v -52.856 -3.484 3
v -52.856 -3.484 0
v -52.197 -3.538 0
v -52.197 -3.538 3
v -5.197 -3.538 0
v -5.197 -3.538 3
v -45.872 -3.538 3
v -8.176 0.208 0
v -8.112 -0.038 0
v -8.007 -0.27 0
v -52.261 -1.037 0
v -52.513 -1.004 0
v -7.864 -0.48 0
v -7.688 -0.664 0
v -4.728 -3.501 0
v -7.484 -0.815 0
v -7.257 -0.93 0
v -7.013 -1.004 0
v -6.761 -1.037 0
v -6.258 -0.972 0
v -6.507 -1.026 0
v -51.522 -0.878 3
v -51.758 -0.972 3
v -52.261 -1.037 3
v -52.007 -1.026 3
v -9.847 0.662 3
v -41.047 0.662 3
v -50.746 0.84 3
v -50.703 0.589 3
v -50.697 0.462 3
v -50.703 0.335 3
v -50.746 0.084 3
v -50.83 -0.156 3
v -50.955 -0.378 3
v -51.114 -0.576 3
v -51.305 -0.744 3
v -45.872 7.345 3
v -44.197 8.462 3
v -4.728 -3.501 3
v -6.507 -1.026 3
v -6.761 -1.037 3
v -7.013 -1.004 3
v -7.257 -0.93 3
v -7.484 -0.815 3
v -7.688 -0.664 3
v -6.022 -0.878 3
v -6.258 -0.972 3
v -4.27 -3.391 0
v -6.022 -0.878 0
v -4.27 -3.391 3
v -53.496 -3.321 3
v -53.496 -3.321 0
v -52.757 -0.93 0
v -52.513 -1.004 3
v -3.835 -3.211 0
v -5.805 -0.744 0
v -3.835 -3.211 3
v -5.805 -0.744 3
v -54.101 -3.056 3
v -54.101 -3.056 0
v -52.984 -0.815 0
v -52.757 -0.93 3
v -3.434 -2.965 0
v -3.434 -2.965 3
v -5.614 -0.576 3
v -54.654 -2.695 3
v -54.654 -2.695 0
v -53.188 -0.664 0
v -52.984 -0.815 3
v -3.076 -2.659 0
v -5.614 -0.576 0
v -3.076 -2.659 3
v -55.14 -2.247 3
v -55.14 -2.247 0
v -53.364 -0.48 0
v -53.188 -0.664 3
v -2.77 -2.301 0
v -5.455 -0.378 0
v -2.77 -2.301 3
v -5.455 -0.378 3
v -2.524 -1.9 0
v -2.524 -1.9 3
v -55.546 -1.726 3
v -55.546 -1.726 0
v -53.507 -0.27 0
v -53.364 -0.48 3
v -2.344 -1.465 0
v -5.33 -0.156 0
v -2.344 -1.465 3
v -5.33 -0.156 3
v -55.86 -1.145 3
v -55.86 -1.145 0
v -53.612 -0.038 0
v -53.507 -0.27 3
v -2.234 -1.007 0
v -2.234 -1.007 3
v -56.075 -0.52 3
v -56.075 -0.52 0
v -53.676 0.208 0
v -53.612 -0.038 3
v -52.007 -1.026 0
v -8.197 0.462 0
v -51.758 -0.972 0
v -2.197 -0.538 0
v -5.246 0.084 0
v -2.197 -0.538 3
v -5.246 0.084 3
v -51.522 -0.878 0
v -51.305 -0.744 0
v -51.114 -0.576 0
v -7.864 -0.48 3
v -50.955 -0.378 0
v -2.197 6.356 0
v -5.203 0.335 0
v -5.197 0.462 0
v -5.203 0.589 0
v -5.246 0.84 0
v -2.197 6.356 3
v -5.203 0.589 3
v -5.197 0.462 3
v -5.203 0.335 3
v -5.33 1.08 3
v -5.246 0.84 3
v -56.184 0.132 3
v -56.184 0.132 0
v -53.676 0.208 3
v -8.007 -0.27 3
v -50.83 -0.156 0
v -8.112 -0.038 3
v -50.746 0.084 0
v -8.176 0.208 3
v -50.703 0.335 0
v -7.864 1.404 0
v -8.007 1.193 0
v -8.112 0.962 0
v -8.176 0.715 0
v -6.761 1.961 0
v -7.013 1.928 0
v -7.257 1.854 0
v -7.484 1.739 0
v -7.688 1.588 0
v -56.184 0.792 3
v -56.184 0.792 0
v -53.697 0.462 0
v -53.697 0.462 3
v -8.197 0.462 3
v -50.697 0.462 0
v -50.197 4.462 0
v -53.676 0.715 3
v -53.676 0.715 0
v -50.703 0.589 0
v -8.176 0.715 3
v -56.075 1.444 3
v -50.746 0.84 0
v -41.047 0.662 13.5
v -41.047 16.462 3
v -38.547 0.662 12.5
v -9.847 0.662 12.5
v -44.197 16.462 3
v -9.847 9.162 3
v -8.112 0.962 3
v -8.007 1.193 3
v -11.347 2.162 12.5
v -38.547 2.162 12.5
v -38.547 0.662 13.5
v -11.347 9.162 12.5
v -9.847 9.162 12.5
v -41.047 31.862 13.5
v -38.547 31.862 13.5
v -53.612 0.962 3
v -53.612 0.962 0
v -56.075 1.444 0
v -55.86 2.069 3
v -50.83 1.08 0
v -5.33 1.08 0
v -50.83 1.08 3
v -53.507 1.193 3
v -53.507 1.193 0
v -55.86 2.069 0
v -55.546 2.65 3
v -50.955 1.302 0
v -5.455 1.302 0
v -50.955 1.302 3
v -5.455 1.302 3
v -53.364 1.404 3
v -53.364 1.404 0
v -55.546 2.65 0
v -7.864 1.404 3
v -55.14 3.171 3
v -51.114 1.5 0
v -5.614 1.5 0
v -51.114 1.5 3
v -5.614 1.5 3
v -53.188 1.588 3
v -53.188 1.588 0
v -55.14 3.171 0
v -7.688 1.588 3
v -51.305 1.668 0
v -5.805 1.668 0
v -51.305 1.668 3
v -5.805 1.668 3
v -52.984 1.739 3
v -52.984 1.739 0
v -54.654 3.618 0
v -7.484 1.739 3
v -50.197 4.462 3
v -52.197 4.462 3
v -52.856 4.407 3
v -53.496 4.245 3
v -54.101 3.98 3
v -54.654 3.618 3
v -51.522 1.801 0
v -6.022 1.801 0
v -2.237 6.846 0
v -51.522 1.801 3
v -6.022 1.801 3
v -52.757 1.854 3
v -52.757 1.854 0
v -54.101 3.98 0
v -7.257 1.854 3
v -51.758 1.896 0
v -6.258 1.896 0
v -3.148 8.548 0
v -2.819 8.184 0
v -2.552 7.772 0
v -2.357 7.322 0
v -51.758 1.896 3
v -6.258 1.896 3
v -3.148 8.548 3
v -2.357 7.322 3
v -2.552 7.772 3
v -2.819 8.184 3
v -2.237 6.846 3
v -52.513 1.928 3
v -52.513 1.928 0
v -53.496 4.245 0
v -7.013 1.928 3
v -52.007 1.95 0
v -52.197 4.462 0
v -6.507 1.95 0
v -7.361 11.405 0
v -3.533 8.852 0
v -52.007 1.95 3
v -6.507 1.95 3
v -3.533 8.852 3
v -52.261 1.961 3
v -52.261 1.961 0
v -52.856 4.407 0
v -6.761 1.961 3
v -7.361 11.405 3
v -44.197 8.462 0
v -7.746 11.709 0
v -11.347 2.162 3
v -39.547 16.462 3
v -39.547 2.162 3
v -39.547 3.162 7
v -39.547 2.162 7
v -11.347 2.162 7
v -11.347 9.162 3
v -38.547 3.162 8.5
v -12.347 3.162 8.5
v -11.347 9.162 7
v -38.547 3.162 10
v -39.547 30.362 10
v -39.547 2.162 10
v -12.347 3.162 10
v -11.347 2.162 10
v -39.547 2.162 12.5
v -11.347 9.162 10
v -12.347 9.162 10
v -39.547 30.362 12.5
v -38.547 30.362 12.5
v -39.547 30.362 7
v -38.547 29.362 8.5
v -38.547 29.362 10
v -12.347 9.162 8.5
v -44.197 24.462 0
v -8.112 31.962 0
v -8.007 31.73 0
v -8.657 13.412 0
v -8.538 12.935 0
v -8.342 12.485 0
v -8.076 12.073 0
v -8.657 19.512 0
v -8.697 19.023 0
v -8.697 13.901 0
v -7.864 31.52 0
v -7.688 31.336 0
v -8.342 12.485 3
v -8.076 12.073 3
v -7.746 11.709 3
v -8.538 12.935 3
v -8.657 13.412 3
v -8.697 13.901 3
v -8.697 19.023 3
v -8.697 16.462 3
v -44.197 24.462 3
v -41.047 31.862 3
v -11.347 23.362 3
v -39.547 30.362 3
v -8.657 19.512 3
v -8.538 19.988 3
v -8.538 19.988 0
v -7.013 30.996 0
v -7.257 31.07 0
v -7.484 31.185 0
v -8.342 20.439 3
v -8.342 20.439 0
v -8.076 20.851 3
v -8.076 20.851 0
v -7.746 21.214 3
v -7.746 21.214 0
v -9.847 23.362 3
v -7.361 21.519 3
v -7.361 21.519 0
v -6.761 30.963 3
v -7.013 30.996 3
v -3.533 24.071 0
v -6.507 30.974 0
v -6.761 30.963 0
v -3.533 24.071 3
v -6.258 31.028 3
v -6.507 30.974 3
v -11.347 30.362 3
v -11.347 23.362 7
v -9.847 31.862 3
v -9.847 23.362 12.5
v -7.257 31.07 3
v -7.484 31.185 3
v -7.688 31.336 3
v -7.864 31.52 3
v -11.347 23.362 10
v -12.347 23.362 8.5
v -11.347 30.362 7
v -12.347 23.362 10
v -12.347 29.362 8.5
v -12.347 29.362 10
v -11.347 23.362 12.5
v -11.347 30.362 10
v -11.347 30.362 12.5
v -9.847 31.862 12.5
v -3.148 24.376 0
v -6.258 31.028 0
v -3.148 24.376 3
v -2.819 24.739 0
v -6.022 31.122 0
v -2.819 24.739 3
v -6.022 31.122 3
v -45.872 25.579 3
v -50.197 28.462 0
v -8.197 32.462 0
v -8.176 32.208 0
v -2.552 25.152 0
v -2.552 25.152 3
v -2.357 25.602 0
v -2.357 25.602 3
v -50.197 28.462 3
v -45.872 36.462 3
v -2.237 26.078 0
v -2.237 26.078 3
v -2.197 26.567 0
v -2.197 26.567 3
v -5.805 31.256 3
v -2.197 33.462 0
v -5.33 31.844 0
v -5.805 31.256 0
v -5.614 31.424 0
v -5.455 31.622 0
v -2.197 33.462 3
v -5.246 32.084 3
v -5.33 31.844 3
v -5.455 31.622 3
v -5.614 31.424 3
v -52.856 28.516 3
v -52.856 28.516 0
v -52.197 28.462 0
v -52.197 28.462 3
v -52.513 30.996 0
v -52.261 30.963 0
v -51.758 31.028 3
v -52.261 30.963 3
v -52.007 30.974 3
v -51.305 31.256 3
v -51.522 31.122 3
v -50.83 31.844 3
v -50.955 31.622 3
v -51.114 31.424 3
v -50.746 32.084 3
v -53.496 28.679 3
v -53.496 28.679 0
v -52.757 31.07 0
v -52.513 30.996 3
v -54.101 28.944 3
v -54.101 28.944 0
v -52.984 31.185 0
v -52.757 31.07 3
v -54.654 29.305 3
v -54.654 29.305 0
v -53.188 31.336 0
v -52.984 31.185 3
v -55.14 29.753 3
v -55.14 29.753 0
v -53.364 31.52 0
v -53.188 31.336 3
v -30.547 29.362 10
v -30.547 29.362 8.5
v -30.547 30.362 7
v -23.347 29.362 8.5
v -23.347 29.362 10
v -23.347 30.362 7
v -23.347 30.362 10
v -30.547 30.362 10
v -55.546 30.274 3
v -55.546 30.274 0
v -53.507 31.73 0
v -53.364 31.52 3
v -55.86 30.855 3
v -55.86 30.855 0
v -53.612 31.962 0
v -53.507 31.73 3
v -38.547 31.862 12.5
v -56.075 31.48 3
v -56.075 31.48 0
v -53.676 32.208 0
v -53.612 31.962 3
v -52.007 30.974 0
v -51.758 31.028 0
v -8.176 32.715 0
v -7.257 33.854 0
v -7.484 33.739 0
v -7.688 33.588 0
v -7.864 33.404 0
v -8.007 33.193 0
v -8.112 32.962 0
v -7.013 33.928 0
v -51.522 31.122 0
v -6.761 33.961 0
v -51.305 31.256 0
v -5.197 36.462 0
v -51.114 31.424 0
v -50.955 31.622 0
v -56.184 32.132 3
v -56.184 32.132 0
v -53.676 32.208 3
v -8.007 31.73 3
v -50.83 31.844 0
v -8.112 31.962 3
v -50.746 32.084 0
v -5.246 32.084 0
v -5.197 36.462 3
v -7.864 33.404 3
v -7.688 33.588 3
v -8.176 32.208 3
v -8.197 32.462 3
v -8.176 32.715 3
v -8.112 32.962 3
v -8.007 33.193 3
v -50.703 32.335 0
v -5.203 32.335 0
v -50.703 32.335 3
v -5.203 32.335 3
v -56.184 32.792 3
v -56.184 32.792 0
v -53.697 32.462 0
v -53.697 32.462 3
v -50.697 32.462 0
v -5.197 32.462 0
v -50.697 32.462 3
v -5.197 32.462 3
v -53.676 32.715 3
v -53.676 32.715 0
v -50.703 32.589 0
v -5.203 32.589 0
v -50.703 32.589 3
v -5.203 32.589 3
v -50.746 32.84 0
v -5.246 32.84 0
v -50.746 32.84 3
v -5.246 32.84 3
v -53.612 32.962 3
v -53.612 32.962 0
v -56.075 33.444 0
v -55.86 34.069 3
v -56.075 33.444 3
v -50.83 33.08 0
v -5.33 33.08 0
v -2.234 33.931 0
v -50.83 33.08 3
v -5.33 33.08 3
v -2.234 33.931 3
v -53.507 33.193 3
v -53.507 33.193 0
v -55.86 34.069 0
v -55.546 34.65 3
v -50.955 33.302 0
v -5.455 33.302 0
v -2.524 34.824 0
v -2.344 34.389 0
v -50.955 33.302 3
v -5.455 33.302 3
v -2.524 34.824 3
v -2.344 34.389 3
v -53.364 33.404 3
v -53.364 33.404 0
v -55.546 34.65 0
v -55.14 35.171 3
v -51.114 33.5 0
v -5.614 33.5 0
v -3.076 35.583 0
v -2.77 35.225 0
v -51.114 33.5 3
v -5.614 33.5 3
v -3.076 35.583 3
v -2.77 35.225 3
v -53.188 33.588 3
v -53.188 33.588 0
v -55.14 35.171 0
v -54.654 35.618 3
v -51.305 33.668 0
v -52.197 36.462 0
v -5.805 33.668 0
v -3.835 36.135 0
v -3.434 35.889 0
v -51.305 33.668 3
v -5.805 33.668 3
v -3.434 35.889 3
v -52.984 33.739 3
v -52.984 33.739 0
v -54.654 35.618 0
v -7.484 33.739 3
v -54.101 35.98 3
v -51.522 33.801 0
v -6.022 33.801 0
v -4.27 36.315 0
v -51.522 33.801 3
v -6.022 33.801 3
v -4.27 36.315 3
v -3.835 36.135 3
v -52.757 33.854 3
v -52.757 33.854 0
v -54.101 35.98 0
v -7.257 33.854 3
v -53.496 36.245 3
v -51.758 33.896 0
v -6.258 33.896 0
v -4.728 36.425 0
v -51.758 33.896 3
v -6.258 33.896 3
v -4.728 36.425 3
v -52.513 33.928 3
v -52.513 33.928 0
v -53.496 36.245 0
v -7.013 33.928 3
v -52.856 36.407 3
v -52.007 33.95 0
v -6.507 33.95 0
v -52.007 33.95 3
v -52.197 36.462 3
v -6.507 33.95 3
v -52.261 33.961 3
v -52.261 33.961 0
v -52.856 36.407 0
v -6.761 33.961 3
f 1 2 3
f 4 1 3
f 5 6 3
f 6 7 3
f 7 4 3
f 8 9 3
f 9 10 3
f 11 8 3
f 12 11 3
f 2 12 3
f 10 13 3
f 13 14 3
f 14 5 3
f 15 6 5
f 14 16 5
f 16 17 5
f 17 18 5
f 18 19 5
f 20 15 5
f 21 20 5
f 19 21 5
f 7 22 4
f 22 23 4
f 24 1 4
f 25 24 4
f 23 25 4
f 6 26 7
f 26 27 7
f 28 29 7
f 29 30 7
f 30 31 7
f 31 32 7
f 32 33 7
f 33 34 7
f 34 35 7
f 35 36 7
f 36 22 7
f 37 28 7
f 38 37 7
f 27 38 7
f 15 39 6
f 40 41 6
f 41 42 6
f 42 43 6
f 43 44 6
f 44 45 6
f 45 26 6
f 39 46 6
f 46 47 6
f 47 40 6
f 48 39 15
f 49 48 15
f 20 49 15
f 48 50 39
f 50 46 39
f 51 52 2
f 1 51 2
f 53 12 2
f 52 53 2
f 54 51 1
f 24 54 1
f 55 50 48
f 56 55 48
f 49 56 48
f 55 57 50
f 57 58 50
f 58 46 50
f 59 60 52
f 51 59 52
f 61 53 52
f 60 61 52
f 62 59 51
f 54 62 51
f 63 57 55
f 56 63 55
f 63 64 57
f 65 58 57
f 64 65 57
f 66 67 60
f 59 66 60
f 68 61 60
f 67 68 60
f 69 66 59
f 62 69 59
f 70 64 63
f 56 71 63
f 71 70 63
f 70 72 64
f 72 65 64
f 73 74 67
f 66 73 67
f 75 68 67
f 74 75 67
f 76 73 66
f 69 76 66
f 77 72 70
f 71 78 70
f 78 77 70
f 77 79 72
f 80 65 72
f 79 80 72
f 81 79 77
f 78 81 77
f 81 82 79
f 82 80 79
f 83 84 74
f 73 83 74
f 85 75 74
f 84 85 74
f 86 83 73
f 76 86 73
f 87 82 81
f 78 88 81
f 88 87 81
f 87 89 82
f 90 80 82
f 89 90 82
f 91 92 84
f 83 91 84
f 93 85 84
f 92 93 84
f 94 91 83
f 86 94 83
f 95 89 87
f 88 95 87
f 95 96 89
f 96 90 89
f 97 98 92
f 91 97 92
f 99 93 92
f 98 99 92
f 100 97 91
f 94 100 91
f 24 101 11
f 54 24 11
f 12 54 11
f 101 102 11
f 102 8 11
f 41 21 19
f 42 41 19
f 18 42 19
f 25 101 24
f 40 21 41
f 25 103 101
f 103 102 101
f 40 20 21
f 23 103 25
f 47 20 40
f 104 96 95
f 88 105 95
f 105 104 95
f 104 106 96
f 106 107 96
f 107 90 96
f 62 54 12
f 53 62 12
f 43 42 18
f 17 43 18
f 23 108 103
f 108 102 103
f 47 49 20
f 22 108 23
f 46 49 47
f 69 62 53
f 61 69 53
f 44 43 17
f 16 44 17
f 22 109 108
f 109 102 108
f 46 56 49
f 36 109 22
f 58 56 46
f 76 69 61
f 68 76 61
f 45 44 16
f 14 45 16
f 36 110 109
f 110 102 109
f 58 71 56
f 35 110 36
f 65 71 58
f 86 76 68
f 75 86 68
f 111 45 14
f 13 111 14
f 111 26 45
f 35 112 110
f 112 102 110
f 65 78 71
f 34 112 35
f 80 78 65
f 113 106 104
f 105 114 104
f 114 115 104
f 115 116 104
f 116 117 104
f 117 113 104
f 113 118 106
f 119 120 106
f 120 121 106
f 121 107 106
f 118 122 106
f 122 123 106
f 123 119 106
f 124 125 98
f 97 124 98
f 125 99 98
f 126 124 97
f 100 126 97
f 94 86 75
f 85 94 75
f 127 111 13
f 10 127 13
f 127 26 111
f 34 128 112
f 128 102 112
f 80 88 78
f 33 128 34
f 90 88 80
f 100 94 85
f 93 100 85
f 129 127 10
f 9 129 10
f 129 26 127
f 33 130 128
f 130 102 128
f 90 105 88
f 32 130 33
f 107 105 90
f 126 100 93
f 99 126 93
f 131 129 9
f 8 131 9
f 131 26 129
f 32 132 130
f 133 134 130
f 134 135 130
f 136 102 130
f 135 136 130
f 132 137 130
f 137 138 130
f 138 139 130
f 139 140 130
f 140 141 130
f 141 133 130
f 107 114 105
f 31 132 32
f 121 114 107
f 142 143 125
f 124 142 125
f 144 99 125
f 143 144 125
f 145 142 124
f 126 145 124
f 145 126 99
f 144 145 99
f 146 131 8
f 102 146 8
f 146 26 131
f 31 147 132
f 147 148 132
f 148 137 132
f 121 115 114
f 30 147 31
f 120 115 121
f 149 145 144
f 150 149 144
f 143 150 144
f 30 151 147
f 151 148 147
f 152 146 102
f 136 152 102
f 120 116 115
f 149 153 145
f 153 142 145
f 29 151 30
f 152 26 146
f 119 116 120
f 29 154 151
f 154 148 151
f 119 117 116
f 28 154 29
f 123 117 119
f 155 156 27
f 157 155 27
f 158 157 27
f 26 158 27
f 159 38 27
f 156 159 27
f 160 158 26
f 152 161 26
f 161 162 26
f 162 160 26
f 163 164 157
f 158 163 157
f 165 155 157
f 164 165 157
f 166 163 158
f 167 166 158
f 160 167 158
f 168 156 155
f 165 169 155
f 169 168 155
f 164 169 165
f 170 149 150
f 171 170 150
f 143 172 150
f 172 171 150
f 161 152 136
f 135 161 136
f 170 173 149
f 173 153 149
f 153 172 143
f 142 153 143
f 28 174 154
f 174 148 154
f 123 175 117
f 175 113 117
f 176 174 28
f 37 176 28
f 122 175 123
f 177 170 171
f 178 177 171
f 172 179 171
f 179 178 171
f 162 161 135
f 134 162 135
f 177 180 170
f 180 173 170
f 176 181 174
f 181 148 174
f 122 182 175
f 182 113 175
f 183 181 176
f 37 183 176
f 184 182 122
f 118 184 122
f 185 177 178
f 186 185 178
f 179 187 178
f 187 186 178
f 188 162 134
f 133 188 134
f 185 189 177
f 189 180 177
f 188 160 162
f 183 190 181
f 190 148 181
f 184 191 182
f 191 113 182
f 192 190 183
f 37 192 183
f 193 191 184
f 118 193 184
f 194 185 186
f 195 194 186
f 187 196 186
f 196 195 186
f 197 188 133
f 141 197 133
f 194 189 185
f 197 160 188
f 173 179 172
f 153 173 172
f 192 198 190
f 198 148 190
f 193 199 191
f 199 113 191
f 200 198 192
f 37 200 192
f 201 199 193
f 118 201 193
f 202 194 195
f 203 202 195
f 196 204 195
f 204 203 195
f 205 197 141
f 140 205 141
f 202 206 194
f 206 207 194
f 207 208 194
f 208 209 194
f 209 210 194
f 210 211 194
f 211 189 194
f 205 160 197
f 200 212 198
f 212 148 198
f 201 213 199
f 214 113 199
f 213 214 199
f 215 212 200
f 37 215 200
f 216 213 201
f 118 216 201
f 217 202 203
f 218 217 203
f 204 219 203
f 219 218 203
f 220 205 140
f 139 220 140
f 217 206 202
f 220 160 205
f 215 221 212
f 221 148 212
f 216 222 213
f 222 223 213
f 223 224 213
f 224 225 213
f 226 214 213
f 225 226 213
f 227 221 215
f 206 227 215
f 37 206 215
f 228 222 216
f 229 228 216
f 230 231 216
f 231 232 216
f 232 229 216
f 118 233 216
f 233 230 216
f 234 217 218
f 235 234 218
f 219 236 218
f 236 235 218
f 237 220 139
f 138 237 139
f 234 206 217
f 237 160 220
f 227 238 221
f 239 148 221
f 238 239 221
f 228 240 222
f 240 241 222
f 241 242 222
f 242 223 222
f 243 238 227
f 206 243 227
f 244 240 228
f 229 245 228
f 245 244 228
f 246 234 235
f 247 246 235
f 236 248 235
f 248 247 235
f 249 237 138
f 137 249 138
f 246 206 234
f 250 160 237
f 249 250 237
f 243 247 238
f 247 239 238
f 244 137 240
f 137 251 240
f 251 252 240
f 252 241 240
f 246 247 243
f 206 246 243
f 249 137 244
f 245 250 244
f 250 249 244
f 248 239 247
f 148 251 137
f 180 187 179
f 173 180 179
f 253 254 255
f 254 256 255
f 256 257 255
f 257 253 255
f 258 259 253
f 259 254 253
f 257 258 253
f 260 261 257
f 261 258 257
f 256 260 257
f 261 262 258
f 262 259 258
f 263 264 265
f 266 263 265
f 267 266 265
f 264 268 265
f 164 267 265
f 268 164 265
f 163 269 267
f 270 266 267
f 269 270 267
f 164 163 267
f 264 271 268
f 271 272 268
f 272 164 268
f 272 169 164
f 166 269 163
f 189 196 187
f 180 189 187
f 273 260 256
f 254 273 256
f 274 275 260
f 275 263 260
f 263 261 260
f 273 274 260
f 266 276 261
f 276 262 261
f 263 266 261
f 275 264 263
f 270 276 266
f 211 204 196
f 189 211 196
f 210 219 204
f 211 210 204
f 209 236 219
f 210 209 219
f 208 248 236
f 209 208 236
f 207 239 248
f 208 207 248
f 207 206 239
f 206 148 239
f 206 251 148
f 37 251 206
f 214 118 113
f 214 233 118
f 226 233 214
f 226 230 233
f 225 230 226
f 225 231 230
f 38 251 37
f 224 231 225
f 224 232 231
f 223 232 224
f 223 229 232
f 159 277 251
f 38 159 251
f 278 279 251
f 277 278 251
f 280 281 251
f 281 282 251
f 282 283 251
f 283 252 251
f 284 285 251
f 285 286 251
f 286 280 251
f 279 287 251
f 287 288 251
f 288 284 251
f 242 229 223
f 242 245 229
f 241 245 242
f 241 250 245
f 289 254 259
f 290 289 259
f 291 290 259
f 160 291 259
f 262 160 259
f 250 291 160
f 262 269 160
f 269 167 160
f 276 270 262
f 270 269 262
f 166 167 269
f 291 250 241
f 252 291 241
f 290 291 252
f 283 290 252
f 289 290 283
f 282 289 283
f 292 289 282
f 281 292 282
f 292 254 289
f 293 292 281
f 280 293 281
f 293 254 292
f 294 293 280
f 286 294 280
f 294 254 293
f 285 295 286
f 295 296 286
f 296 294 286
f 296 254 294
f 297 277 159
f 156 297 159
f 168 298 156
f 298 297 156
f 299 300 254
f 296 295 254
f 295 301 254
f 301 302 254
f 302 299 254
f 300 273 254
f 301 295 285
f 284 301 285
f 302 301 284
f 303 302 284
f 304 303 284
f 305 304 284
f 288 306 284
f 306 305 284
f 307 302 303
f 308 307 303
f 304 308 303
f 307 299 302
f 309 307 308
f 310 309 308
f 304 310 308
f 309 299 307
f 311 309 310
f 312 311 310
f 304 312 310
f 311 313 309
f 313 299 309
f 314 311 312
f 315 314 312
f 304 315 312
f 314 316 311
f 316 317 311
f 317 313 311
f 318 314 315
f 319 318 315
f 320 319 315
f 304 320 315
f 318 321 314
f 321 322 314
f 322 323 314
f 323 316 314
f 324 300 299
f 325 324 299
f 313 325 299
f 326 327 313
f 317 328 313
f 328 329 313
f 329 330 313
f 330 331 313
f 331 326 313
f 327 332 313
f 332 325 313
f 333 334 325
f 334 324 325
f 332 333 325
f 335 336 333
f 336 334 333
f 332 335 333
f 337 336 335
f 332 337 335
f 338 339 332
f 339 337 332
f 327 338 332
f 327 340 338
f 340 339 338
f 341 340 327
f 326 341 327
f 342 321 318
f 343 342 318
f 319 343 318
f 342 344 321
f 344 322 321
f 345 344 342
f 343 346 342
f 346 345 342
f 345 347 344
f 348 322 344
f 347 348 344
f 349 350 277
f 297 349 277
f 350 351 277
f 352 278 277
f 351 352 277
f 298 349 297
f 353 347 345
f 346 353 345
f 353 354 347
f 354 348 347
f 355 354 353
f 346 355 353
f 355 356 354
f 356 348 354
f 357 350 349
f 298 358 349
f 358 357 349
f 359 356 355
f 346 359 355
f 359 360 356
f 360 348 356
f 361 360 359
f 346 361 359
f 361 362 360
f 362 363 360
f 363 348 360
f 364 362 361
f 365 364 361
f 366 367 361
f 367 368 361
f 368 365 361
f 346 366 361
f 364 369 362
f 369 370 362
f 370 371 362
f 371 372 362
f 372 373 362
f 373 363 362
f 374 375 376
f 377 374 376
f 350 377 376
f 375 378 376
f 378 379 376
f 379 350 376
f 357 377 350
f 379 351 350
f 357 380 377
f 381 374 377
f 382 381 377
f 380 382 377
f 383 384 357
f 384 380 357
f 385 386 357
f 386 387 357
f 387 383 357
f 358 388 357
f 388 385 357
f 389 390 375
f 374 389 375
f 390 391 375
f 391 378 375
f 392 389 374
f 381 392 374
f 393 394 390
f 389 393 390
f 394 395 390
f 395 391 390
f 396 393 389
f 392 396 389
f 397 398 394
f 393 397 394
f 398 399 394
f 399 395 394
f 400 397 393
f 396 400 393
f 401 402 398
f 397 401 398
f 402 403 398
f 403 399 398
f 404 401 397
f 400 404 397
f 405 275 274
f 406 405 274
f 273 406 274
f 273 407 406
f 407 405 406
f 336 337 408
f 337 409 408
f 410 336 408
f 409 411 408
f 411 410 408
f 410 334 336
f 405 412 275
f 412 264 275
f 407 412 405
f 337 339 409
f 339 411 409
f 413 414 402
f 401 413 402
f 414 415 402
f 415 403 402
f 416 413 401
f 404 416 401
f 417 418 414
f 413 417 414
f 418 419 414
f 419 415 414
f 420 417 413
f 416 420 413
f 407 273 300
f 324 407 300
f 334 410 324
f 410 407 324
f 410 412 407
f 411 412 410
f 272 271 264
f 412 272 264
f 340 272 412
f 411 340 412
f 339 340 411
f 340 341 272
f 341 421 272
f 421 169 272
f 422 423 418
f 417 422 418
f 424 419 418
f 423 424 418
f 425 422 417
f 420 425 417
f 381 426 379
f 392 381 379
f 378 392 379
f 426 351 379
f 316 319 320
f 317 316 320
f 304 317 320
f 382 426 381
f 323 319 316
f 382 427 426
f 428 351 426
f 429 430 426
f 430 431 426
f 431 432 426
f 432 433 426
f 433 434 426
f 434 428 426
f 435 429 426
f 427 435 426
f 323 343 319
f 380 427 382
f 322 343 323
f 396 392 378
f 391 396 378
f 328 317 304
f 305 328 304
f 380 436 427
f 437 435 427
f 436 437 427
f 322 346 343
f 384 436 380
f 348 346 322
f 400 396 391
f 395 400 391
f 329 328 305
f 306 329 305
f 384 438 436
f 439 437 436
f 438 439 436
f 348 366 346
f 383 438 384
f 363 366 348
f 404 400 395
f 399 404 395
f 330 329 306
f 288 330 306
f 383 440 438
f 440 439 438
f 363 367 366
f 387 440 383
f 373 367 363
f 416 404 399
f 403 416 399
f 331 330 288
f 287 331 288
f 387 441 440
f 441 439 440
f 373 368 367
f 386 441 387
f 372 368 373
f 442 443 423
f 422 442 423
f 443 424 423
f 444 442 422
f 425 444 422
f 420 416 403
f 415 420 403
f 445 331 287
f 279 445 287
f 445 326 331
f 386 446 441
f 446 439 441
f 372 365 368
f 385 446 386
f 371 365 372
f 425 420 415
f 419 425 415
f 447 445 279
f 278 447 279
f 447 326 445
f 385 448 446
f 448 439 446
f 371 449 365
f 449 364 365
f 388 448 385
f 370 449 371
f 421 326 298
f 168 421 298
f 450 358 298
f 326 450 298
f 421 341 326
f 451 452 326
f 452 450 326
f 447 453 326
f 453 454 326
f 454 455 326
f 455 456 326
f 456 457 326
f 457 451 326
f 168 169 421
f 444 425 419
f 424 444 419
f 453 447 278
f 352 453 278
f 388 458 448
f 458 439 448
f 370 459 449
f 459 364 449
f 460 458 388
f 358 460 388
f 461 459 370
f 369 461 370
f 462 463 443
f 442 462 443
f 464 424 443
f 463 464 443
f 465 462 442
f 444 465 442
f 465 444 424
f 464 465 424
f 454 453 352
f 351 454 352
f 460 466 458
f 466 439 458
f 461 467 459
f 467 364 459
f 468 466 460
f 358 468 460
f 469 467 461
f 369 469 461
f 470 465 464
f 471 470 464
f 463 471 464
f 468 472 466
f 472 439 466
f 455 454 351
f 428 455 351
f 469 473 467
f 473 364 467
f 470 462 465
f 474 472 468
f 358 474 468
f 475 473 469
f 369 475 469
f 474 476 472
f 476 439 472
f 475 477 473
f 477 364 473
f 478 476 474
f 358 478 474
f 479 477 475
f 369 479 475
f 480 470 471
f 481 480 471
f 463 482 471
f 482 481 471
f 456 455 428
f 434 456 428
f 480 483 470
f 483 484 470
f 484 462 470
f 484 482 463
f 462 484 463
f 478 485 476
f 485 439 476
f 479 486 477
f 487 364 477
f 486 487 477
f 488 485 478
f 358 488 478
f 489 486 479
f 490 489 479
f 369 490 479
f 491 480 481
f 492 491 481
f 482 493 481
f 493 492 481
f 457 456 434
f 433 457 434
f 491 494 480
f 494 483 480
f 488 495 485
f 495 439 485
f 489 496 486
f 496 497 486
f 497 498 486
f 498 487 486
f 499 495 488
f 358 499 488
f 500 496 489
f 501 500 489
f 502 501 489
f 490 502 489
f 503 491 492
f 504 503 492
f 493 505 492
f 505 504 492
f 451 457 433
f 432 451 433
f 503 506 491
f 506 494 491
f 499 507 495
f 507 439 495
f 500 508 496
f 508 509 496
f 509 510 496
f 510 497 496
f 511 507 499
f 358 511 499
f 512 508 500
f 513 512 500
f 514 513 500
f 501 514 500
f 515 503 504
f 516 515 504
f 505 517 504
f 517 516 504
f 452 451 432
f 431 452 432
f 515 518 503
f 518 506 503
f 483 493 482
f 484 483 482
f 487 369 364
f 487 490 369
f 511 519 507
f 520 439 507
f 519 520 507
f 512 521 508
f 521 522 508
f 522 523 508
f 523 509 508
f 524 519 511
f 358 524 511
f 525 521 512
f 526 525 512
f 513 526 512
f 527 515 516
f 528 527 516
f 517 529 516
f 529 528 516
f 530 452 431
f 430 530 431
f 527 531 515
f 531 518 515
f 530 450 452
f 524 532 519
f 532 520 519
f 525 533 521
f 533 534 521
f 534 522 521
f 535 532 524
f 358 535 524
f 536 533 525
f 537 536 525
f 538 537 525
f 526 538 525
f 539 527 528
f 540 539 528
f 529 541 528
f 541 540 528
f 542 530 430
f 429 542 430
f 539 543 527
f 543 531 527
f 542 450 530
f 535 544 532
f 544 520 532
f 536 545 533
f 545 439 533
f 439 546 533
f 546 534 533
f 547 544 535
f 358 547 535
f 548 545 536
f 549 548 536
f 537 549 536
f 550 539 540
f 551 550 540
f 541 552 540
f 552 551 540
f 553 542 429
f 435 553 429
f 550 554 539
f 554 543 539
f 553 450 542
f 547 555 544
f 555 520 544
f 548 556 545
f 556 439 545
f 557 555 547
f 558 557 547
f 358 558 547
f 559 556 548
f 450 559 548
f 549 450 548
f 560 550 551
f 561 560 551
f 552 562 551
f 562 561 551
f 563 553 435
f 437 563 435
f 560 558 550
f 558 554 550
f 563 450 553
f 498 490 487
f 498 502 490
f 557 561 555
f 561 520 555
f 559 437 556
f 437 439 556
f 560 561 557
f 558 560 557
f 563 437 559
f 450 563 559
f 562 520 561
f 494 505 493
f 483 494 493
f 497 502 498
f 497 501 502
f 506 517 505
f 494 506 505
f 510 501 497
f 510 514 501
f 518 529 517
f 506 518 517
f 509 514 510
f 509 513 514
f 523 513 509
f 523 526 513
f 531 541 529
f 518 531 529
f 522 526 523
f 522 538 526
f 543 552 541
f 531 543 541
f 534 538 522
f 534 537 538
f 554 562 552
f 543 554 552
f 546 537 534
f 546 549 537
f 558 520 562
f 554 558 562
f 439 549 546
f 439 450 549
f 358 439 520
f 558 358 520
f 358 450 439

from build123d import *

# Parameters (mm, degrees)
CROQUIS1_R              = 1.5
SALIENTE_EXTRUIR1_DEPTH = 3
CROQUIS2_W              = 31.2
CROQUIS2_H              = 31.2
CROQUIS2_W_2            = 28.2
CROQUIS2_H_2            = 28.2
SALIENTE_EXTRUIR2_DEPTH = 9.5
CROQUIS4_W              = 28.2
CROQUIS4_H              = 28.2
CROQUIS4_W_2            = 26.2
CROQUIS4_H_2            = 26.2
SALIENTE_EXTRUIR3_DEPTH = 3
CORTAR_EXTRUIR1_REACH   = 69.732
CROQUIS8_W              = 7.2
CROQUIS8_H              = 1
CORTAR_EXTRUIR2_START   = -9.5
CROQUIS9_W              = 5.627722912
CROQUIS9_H              = 14.2
CORTAR_EXTRUIR2_DEPTH   = 9.5
CROQUIS10_W             = 2.5
CROQUIS10_H             = 31.2
SALIENTE_EXTRUIR4_DEPTH = 1


with BuildPart() as part:
    # Croquis1 → Saliente-Extruir1 (new body)
    with BuildSketch(Plane.XY):
        with BuildLine():
            Line((-52.197309417, 4.461883408), (-50.197309417, 4.461883408))
            Line((-50.197309417, 4.461883408), (-44.197309417, 8.461883408))
            Line((-44.197309417, 8.461883408), (-44.197309417, 24.461883408))
            Line((-44.197309417, 24.461883408), (-50.197309417, 28.461883408))
            Line((-50.197309417, 28.461883408), (-52.197309417, 28.461883408))
            ThreePointArc((-52.197309417, 28.461883408), (-56.197309417, 32.461883408), (-52.197309417, 36.461883408))
            Line((-52.197309417, 36.461883408), (-5.197309417, 36.461883408))
            ThreePointArc((-5.197309417, 36.461883408), (-3.075989073, 35.583203752), (-2.197309417, 33.461883408))
            Line((-2.197309417, 33.461883408), (-2.197309417, 26.567434684))
            ThreePointArc((-2.197309417, 26.567434684), (-2.552285621, 25.151860907), (-3.533208828, 24.071283801))
            Line((-3.533208828, 24.071283801), (-7.361410006, 21.519149682))
            ThreePointArc((-7.361410006, 21.519149682), (-8.342333213, 20.438572576), (-8.697309417, 19.022998799))
            Line((-8.697309417, 19.022998799), (-8.697309417, 13.900768017))
            ThreePointArc((-8.697309417, 13.900768017), (-8.342333213, 12.48519424), (-7.361410006, 11.404617134))
            Line((-7.361410006, 11.404617134), (-3.533208828, 8.852483016))
            ThreePointArc((-3.533208828, 8.852483016), (-2.552285621, 7.771905909), (-2.197309417, 6.356332133))
            Line((-2.197309417, 6.356332133), (-2.197309417, -0.538116592))
            ThreePointArc((-2.197309417, -0.538116592), (-3.075989073, -2.659436935), (-5.197309417, -3.538116592))
            Line((-5.197309417, -3.538116592), (-52.197309417, -3.538116592))
            ThreePointArc((-52.197309417, -3.538116592), (-56.197309417, 0.461883408), (-52.197309417, 4.461883408))
        make_face()
        with Locations((-6.697309417, 32.461883408)):
            Circle(CROQUIS1_R, mode=Mode.SUBTRACT)
        with Locations((-52.197309417, 0.461883408)):
            Circle(CROQUIS1_R, mode=Mode.SUBTRACT)
        with Locations((-6.697309417, 0.461883408)):
            Circle(CROQUIS1_R, mode=Mode.SUBTRACT)
        with Locations((-52.197309417, 32.461883408)):
            Circle(CROQUIS1_R, mode=Mode.SUBTRACT)
    extrude(amount=SALIENTE_EXTRUIR1_DEPTH)

    # Croquis2 → Saliente-Extruir2 (add)
    with BuildSketch(Plane.XY.offset(3)):
        with Locations((-25.447309417, 16.261883408)):
            Rectangle(CROQUIS2_W, CROQUIS2_H)
        with Locations((-25.447309417, 16.261883408)):
            Rectangle(CROQUIS2_W_2, CROQUIS2_H_2, mode=Mode.SUBTRACT)
    extrude(amount=SALIENTE_EXTRUIR2_DEPTH)

    # Croquis4 → Saliente-Extruir3 (add)
    with BuildSketch(Plane.XY.offset(7)):
        with Locations((-25.447309417, 16.261883408)):
            Rectangle(CROQUIS4_W, CROQUIS4_H)
        with Locations((-25.447309417, 16.261883408)):
            Rectangle(CROQUIS4_W_2, CROQUIS4_H_2, mode=Mode.SUBTRACT)
    extrude(amount=SALIENTE_EXTRUIR3_DEPTH)

    # Cortar-Barrer1: sweep along a path in Croquis7
    with BuildLine(Plane.XY.offset(10)) as cortar_barrer1_path:
        Line((-39.047309417, 29.861883408), (-11.847309417, 29.861883408))
        Line((-11.847309417, 29.861883408), (-11.847309417, 2.661883408))
        Line((-11.847309417, 2.661883408), (-39.047309417, 2.661883408))
        Line((-39.047309417, 2.661883408), (-39.047309417, 29.861883408))
    # Croquis6 → Cortar-Barrer1 (sweep, cut)
    with BuildSketch(Plane(origin=(0, 3.161883408, 0), x_dir=(-1, 0, 0), z_dir=(0, -1, 0))):
        Polygon((38.547309417, -8.5), (38.547309417, -7), (39.547309417, -7), align=None)
    sweep(path=cortar_barrer1_path.line, transition=Transition.RIGHT, mode=Mode.SUBTRACT)

    # Cortar-Extruir1: up to this plane
    cortar_extruir1_end = Plane(origin=(-39.697309417, 30.361883408, 7), z_dir=(0, -0.8320502943378436, -0.5547001962252293))
    # Croquis8 → Cortar-Extruir1 (cut, up to the surface)
    with BuildSketch(Plane.XY.offset(10), mode=Mode.PRIVATE) as cortar_extruir1_sk1:
        with Locations((-26.947309417, 29.861883408)):
            Rectangle(CROQUIS8_W, CROQUIS8_H)
    cortar_extruir1_tool1 = split(extrude(cortar_extruir1_sk1.sketch, amount=-CORTAR_EXTRUIR1_REACH, mode=Mode.PRIVATE), bisect_by=cortar_extruir1_end, keep=Keep.BOTH, mode=Mode.PRIVATE)
    add(cortar_extruir1_tool1.solids().sort_by_distance((-26.947309, 29.861883, 10))[0], mode=Mode.SUBTRACT)

    # Croquis9 → Cortar-Extruir2 (cut)
    with BuildSketch(Plane.XY.offset(12.5).offset(CORTAR_EXTRUIR2_START)):
        with Locations((-12.661170873, 16.261883408)):
            Rectangle(CROQUIS9_W, CROQUIS9_H)
    extrude(amount=CORTAR_EXTRUIR2_DEPTH, mode=Mode.SUBTRACT)

    # Croquis10 → Saliente-Extruir4 (add)
    with BuildSketch(Plane.XY.offset(12.5)):
        with Locations((-39.797309417, 16.261883408)):
            Rectangle(CROQUIS10_W, CROQUIS10_H)
    extrude(amount=SALIENTE_EXTRUIR4_DEPTH)


solid = part.part
